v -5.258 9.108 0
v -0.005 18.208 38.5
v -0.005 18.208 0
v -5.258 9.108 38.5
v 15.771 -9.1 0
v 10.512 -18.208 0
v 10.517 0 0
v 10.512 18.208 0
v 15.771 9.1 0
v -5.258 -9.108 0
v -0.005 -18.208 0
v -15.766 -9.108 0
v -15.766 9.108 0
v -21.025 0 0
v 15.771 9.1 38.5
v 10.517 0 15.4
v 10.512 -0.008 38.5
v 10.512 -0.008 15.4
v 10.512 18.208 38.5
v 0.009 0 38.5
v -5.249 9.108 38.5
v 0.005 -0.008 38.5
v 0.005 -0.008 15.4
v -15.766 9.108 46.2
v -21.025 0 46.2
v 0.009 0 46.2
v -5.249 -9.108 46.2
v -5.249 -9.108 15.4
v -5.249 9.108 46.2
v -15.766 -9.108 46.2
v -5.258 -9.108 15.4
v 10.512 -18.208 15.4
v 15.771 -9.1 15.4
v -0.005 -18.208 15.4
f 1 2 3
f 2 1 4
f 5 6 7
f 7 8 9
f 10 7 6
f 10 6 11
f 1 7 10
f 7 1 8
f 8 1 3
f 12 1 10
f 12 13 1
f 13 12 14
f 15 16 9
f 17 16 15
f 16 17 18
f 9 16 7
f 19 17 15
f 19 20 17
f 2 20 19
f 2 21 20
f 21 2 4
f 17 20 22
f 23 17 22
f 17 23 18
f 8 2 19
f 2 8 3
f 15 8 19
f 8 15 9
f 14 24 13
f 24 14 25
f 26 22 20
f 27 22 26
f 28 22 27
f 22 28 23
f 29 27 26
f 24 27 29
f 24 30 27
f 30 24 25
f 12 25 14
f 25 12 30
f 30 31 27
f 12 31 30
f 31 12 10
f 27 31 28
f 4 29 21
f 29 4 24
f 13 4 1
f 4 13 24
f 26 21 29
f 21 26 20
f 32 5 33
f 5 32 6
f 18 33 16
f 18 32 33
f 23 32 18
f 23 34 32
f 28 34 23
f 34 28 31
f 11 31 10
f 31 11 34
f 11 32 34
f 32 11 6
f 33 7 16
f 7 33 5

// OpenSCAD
// file: dimensions.scad
measureX = 9.10; // 92/2/2/sqrt(19)*sqrt(3)
measureY = 9.10; 
measureZ = 7.7; // 54/7 is about 7.7

halfSide = 1*tan(30);
h1 = 1;
dd = 0.001;
// main file
include <dimensions.scad>

hh = [5,6,2];

scale([measureX,measureY,measureZ])  union() {
    translate([halfSide,1,0]) 
    linear_extrude(height = hh[0]*h1, center = false)
    circle(2*halfSide + dd,$fn=6);
    
    translate([-2*halfSide,0,0]) 
    linear_extrude(height = hh[1]*h1, center = false)
    circle(2*halfSide + dd,$fn=6);
    
    translate([halfSide,-1,0]) 
    linear_extrude(height = hh[2]*h1, center = false)
    circle(2*halfSide + dd,$fn=6);
}
